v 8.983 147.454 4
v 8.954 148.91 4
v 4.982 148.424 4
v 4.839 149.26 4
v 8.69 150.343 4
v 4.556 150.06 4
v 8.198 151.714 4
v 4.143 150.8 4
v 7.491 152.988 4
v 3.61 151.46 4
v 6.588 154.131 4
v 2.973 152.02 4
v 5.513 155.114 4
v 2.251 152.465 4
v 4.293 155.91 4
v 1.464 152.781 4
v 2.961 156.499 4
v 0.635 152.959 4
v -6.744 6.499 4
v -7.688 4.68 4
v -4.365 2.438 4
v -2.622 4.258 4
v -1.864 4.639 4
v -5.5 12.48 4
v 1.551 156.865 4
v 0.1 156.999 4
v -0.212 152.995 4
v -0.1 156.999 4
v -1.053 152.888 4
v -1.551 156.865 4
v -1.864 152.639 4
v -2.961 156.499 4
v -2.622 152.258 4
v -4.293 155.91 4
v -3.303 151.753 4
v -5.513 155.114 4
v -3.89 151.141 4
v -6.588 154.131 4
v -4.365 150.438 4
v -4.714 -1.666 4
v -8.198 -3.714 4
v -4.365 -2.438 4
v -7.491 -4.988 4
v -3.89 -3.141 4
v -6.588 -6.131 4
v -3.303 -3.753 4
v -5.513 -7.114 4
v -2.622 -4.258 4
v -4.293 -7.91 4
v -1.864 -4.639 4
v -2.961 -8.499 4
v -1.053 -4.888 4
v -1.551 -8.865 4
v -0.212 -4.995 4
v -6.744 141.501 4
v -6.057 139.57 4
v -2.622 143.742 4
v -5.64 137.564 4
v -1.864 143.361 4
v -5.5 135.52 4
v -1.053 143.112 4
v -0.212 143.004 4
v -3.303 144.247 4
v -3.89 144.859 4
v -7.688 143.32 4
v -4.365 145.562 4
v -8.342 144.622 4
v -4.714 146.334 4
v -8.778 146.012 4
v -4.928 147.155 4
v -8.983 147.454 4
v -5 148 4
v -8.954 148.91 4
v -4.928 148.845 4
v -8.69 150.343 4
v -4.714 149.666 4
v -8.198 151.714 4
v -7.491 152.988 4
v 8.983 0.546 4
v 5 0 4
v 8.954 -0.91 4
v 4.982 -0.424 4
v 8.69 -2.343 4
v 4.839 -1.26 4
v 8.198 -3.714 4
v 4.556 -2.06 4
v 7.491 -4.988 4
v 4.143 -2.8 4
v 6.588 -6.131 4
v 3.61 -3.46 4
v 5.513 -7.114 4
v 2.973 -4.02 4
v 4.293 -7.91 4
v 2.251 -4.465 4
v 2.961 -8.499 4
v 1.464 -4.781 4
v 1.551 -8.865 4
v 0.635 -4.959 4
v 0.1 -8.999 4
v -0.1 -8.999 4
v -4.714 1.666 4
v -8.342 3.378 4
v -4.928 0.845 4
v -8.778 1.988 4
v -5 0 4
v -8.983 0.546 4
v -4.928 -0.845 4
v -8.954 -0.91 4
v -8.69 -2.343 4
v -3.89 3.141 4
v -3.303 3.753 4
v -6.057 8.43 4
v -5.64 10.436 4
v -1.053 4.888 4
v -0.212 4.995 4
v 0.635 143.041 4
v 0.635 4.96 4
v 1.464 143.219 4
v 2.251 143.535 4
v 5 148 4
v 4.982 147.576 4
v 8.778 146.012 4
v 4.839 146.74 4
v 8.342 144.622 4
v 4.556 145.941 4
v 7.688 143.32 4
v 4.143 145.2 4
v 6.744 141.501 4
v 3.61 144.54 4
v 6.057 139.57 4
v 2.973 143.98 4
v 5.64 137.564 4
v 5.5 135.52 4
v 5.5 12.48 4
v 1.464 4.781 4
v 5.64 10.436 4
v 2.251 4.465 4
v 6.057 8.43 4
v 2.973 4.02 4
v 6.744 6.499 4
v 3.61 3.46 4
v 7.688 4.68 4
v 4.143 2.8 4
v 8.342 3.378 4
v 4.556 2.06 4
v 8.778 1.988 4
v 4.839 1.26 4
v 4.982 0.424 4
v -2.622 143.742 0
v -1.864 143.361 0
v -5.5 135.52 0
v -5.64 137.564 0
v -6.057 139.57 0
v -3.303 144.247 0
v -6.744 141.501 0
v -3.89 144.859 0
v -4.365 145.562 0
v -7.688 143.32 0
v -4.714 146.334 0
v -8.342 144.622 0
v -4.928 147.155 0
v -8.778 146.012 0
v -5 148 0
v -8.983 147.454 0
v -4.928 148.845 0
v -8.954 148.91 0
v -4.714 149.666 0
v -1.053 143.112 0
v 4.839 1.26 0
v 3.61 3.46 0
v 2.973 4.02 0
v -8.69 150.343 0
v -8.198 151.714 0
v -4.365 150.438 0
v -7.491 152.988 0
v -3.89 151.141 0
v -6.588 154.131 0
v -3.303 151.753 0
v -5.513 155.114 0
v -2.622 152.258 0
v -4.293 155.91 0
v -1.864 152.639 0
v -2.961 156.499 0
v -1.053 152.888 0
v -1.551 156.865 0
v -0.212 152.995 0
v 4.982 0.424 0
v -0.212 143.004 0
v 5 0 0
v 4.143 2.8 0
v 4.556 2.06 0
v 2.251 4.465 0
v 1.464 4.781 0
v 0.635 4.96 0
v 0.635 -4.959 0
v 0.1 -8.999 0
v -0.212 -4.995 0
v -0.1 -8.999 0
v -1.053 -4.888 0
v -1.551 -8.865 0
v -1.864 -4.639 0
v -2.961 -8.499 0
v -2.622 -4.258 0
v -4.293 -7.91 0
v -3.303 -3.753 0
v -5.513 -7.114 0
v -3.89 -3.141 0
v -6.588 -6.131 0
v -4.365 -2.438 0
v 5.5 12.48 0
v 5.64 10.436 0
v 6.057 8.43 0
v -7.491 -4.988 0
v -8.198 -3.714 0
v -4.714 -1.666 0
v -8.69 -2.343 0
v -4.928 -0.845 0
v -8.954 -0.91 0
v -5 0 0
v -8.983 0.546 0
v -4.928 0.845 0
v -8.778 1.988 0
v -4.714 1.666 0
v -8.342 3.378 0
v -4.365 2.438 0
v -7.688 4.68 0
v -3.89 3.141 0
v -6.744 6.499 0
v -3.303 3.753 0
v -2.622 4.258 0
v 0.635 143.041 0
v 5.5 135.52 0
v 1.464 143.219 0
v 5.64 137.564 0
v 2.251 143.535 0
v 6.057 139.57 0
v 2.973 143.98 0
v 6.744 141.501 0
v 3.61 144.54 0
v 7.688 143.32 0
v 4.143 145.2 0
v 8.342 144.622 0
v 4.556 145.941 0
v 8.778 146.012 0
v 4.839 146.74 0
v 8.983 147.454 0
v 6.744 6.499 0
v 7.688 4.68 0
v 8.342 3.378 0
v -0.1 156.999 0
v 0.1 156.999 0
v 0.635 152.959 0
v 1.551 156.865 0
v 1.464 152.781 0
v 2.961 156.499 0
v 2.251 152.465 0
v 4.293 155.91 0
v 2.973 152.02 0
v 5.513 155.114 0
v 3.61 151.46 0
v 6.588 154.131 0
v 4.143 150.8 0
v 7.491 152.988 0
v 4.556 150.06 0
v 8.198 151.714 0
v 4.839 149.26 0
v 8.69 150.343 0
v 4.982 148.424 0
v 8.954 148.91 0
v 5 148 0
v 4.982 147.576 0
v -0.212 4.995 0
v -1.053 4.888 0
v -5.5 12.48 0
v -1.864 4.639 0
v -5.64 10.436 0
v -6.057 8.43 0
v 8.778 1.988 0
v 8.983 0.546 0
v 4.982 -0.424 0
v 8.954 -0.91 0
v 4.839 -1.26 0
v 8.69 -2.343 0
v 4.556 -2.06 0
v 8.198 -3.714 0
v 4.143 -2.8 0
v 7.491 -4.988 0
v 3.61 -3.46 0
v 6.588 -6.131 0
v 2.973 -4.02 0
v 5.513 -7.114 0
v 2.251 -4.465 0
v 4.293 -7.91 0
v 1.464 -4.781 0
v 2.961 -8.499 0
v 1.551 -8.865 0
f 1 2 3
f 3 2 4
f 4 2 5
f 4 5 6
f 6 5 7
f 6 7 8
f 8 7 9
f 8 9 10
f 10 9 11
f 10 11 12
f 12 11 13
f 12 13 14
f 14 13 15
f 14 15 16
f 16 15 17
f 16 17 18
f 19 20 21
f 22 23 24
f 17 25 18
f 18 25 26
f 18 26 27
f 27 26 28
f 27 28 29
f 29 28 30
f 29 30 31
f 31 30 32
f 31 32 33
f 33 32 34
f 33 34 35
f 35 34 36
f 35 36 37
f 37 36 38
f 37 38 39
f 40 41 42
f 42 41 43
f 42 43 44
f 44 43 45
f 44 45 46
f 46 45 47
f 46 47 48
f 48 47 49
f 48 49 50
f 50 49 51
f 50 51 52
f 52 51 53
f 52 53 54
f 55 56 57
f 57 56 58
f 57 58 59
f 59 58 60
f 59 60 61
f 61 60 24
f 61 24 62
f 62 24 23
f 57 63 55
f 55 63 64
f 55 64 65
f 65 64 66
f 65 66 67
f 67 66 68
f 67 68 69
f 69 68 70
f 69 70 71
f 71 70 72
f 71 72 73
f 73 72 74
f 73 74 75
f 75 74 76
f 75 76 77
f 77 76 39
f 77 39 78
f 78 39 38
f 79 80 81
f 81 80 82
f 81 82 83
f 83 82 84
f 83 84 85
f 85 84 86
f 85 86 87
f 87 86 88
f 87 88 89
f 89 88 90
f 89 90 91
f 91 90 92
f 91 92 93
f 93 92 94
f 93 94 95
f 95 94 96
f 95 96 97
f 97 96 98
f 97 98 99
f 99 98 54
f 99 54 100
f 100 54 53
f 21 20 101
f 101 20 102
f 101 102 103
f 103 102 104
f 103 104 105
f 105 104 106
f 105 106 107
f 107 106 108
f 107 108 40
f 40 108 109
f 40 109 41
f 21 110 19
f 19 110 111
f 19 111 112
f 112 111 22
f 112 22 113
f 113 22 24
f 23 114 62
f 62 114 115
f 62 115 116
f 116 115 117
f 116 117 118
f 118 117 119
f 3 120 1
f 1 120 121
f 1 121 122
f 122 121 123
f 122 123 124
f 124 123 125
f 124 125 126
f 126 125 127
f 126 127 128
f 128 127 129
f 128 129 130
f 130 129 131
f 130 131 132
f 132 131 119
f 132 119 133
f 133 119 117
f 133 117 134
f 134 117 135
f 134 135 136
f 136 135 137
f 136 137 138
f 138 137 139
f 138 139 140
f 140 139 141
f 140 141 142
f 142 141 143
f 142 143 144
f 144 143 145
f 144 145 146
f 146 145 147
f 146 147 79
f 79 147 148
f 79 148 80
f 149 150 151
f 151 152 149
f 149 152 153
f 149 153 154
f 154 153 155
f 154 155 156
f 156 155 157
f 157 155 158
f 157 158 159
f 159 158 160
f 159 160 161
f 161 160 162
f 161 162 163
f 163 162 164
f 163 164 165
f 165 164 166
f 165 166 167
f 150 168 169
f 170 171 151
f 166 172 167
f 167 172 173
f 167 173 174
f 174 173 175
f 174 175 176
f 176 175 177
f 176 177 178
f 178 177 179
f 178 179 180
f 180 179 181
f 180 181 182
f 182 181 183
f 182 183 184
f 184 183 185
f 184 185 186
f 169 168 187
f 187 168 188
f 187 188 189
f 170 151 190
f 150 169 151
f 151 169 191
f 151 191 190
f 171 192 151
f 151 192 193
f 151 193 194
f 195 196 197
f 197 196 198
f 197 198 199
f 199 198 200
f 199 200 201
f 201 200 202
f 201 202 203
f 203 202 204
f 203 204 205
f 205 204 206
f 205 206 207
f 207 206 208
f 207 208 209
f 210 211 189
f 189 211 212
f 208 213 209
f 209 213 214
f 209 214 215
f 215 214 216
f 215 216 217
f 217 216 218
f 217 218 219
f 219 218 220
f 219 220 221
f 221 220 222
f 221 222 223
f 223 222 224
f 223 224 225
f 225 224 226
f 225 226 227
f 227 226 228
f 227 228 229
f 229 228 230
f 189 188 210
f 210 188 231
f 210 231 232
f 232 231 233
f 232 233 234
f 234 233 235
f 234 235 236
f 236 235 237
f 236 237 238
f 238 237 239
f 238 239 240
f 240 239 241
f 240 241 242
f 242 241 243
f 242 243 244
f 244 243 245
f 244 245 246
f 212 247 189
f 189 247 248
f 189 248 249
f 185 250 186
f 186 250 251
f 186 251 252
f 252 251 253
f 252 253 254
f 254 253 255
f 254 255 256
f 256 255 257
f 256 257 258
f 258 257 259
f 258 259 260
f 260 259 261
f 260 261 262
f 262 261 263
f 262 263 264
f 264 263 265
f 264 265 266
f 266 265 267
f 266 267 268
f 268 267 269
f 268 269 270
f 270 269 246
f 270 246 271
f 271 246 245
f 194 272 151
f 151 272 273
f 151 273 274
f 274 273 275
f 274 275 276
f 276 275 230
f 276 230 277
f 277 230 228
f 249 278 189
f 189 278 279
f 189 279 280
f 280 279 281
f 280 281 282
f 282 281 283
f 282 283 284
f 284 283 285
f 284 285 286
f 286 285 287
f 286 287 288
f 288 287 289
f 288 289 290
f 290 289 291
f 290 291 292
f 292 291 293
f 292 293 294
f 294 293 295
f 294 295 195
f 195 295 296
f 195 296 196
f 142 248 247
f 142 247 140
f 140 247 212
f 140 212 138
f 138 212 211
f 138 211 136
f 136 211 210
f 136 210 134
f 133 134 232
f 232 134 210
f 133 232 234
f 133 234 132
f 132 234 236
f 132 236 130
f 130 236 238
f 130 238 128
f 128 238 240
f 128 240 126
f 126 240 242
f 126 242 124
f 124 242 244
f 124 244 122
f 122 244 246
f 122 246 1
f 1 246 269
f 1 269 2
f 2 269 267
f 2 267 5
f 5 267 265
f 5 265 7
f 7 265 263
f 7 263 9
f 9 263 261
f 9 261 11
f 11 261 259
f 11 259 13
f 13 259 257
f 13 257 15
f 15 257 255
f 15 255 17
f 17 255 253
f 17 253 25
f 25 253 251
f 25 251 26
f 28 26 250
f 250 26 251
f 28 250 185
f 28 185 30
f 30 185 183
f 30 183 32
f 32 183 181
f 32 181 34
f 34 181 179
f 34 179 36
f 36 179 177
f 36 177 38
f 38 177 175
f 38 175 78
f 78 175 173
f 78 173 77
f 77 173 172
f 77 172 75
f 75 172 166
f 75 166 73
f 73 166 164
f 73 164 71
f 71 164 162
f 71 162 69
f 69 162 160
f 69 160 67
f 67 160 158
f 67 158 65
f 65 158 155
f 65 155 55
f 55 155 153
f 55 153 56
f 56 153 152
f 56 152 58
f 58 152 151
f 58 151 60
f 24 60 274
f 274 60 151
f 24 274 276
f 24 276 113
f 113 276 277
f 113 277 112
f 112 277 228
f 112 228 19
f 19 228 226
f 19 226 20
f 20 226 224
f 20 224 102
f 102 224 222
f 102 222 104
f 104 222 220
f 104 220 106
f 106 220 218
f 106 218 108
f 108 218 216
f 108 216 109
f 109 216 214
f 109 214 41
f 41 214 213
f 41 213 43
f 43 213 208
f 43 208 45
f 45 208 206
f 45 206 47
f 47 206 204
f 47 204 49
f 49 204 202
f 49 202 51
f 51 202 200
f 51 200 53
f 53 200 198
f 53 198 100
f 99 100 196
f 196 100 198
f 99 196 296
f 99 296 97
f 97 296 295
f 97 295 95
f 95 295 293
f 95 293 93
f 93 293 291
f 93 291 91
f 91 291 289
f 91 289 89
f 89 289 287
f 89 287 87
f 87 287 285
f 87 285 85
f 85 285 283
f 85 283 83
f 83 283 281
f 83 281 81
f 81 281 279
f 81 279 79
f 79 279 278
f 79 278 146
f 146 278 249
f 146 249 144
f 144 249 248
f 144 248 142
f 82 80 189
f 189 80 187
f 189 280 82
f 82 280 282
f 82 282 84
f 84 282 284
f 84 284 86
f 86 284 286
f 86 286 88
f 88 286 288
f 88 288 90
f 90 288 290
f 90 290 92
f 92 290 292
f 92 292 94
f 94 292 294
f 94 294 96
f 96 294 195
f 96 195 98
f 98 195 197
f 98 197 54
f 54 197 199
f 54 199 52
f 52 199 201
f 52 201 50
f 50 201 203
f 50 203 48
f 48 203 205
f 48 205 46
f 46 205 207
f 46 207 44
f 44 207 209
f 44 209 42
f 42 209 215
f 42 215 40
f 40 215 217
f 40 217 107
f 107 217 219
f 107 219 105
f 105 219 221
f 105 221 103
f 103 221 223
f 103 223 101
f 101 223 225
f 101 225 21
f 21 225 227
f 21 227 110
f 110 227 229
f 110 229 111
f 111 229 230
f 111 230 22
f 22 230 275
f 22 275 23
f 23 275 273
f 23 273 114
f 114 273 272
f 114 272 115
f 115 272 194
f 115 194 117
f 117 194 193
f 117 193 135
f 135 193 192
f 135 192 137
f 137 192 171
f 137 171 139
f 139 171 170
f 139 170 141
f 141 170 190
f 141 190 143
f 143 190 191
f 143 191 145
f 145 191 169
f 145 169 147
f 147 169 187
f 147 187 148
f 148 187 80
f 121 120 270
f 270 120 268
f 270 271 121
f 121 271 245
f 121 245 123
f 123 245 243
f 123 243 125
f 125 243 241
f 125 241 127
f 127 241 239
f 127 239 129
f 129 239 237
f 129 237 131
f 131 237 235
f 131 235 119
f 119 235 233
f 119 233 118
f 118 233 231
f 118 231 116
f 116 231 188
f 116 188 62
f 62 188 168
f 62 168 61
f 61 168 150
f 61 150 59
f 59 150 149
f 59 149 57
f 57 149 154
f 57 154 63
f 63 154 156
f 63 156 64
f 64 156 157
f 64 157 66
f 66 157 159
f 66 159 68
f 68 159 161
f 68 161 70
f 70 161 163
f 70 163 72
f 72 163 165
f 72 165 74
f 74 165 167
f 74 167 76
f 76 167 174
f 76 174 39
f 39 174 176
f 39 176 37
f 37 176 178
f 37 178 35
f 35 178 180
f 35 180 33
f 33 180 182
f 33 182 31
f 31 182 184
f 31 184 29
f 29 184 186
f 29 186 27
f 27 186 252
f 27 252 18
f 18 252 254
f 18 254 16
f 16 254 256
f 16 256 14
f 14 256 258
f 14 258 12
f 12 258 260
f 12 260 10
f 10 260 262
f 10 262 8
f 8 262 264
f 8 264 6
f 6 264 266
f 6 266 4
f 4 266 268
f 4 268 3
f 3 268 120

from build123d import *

# Parameters (mm, degrees)
SKETCH_1_R      = 5
EXTRUDE_1_DEPTH = 4


with BuildPart() as part:
    # 草图1 → 凸台-拉伸1 (new body)
    with BuildSketch(Plane.XY):
        with BuildLine():
            Line((-5.5, 135.520010959), (-5.5, 12.479983974))
            ThreePointArc((-5.5, 12.479983974), (-6.05722499, 8.429521038), (-7.6875, 4.67999399))
            ThreePointArc((-7.6875, 4.67999399), (-7.870390208, -4.365427582), (-0.099998457, -8.999444444))
            Line((-0.099998457, -8.999444444), (0.099998457, -8.999444444))
            ThreePointArc((0.099998457, -8.999444444), (7.870390208, -4.365427582), (7.6875, 4.67999399))
            ThreePointArc((7.6875, 4.67999399), (6.05722499, 8.429521038), (5.5, 12.479983974))
            Line((5.5, 12.479983974), (5.5, 135.520016026))
            ThreePointArc((5.5, 135.520016026), (6.05722499, 139.570478962), (7.6875, 143.32000601))
            ThreePointArc((7.6875, 143.32000601), (7.870390208, 152.365427582), (0.099998457, 156.999444444))
            Line((0.099998457, 156.999444444), (-0.099998457, 156.999444444))
            ThreePointArc((-0.099998457, 156.999444444), (-7.870390208, 152.365427582), (-7.6875, 143.32000601))
            ThreePointArc((-7.6875, 143.32000601), (-6.057224306, 139.570476523), (-5.5, 135.520010959))
        make_face()
        Circle(SKETCH_1_R, mode=Mode.SUBTRACT)
        with Locations((0, 148)):
            Circle(SKETCH_1_R, mode=Mode.SUBTRACT)
    extrude(amount=EXTRUDE_1_DEPTH)


solid = part.part
